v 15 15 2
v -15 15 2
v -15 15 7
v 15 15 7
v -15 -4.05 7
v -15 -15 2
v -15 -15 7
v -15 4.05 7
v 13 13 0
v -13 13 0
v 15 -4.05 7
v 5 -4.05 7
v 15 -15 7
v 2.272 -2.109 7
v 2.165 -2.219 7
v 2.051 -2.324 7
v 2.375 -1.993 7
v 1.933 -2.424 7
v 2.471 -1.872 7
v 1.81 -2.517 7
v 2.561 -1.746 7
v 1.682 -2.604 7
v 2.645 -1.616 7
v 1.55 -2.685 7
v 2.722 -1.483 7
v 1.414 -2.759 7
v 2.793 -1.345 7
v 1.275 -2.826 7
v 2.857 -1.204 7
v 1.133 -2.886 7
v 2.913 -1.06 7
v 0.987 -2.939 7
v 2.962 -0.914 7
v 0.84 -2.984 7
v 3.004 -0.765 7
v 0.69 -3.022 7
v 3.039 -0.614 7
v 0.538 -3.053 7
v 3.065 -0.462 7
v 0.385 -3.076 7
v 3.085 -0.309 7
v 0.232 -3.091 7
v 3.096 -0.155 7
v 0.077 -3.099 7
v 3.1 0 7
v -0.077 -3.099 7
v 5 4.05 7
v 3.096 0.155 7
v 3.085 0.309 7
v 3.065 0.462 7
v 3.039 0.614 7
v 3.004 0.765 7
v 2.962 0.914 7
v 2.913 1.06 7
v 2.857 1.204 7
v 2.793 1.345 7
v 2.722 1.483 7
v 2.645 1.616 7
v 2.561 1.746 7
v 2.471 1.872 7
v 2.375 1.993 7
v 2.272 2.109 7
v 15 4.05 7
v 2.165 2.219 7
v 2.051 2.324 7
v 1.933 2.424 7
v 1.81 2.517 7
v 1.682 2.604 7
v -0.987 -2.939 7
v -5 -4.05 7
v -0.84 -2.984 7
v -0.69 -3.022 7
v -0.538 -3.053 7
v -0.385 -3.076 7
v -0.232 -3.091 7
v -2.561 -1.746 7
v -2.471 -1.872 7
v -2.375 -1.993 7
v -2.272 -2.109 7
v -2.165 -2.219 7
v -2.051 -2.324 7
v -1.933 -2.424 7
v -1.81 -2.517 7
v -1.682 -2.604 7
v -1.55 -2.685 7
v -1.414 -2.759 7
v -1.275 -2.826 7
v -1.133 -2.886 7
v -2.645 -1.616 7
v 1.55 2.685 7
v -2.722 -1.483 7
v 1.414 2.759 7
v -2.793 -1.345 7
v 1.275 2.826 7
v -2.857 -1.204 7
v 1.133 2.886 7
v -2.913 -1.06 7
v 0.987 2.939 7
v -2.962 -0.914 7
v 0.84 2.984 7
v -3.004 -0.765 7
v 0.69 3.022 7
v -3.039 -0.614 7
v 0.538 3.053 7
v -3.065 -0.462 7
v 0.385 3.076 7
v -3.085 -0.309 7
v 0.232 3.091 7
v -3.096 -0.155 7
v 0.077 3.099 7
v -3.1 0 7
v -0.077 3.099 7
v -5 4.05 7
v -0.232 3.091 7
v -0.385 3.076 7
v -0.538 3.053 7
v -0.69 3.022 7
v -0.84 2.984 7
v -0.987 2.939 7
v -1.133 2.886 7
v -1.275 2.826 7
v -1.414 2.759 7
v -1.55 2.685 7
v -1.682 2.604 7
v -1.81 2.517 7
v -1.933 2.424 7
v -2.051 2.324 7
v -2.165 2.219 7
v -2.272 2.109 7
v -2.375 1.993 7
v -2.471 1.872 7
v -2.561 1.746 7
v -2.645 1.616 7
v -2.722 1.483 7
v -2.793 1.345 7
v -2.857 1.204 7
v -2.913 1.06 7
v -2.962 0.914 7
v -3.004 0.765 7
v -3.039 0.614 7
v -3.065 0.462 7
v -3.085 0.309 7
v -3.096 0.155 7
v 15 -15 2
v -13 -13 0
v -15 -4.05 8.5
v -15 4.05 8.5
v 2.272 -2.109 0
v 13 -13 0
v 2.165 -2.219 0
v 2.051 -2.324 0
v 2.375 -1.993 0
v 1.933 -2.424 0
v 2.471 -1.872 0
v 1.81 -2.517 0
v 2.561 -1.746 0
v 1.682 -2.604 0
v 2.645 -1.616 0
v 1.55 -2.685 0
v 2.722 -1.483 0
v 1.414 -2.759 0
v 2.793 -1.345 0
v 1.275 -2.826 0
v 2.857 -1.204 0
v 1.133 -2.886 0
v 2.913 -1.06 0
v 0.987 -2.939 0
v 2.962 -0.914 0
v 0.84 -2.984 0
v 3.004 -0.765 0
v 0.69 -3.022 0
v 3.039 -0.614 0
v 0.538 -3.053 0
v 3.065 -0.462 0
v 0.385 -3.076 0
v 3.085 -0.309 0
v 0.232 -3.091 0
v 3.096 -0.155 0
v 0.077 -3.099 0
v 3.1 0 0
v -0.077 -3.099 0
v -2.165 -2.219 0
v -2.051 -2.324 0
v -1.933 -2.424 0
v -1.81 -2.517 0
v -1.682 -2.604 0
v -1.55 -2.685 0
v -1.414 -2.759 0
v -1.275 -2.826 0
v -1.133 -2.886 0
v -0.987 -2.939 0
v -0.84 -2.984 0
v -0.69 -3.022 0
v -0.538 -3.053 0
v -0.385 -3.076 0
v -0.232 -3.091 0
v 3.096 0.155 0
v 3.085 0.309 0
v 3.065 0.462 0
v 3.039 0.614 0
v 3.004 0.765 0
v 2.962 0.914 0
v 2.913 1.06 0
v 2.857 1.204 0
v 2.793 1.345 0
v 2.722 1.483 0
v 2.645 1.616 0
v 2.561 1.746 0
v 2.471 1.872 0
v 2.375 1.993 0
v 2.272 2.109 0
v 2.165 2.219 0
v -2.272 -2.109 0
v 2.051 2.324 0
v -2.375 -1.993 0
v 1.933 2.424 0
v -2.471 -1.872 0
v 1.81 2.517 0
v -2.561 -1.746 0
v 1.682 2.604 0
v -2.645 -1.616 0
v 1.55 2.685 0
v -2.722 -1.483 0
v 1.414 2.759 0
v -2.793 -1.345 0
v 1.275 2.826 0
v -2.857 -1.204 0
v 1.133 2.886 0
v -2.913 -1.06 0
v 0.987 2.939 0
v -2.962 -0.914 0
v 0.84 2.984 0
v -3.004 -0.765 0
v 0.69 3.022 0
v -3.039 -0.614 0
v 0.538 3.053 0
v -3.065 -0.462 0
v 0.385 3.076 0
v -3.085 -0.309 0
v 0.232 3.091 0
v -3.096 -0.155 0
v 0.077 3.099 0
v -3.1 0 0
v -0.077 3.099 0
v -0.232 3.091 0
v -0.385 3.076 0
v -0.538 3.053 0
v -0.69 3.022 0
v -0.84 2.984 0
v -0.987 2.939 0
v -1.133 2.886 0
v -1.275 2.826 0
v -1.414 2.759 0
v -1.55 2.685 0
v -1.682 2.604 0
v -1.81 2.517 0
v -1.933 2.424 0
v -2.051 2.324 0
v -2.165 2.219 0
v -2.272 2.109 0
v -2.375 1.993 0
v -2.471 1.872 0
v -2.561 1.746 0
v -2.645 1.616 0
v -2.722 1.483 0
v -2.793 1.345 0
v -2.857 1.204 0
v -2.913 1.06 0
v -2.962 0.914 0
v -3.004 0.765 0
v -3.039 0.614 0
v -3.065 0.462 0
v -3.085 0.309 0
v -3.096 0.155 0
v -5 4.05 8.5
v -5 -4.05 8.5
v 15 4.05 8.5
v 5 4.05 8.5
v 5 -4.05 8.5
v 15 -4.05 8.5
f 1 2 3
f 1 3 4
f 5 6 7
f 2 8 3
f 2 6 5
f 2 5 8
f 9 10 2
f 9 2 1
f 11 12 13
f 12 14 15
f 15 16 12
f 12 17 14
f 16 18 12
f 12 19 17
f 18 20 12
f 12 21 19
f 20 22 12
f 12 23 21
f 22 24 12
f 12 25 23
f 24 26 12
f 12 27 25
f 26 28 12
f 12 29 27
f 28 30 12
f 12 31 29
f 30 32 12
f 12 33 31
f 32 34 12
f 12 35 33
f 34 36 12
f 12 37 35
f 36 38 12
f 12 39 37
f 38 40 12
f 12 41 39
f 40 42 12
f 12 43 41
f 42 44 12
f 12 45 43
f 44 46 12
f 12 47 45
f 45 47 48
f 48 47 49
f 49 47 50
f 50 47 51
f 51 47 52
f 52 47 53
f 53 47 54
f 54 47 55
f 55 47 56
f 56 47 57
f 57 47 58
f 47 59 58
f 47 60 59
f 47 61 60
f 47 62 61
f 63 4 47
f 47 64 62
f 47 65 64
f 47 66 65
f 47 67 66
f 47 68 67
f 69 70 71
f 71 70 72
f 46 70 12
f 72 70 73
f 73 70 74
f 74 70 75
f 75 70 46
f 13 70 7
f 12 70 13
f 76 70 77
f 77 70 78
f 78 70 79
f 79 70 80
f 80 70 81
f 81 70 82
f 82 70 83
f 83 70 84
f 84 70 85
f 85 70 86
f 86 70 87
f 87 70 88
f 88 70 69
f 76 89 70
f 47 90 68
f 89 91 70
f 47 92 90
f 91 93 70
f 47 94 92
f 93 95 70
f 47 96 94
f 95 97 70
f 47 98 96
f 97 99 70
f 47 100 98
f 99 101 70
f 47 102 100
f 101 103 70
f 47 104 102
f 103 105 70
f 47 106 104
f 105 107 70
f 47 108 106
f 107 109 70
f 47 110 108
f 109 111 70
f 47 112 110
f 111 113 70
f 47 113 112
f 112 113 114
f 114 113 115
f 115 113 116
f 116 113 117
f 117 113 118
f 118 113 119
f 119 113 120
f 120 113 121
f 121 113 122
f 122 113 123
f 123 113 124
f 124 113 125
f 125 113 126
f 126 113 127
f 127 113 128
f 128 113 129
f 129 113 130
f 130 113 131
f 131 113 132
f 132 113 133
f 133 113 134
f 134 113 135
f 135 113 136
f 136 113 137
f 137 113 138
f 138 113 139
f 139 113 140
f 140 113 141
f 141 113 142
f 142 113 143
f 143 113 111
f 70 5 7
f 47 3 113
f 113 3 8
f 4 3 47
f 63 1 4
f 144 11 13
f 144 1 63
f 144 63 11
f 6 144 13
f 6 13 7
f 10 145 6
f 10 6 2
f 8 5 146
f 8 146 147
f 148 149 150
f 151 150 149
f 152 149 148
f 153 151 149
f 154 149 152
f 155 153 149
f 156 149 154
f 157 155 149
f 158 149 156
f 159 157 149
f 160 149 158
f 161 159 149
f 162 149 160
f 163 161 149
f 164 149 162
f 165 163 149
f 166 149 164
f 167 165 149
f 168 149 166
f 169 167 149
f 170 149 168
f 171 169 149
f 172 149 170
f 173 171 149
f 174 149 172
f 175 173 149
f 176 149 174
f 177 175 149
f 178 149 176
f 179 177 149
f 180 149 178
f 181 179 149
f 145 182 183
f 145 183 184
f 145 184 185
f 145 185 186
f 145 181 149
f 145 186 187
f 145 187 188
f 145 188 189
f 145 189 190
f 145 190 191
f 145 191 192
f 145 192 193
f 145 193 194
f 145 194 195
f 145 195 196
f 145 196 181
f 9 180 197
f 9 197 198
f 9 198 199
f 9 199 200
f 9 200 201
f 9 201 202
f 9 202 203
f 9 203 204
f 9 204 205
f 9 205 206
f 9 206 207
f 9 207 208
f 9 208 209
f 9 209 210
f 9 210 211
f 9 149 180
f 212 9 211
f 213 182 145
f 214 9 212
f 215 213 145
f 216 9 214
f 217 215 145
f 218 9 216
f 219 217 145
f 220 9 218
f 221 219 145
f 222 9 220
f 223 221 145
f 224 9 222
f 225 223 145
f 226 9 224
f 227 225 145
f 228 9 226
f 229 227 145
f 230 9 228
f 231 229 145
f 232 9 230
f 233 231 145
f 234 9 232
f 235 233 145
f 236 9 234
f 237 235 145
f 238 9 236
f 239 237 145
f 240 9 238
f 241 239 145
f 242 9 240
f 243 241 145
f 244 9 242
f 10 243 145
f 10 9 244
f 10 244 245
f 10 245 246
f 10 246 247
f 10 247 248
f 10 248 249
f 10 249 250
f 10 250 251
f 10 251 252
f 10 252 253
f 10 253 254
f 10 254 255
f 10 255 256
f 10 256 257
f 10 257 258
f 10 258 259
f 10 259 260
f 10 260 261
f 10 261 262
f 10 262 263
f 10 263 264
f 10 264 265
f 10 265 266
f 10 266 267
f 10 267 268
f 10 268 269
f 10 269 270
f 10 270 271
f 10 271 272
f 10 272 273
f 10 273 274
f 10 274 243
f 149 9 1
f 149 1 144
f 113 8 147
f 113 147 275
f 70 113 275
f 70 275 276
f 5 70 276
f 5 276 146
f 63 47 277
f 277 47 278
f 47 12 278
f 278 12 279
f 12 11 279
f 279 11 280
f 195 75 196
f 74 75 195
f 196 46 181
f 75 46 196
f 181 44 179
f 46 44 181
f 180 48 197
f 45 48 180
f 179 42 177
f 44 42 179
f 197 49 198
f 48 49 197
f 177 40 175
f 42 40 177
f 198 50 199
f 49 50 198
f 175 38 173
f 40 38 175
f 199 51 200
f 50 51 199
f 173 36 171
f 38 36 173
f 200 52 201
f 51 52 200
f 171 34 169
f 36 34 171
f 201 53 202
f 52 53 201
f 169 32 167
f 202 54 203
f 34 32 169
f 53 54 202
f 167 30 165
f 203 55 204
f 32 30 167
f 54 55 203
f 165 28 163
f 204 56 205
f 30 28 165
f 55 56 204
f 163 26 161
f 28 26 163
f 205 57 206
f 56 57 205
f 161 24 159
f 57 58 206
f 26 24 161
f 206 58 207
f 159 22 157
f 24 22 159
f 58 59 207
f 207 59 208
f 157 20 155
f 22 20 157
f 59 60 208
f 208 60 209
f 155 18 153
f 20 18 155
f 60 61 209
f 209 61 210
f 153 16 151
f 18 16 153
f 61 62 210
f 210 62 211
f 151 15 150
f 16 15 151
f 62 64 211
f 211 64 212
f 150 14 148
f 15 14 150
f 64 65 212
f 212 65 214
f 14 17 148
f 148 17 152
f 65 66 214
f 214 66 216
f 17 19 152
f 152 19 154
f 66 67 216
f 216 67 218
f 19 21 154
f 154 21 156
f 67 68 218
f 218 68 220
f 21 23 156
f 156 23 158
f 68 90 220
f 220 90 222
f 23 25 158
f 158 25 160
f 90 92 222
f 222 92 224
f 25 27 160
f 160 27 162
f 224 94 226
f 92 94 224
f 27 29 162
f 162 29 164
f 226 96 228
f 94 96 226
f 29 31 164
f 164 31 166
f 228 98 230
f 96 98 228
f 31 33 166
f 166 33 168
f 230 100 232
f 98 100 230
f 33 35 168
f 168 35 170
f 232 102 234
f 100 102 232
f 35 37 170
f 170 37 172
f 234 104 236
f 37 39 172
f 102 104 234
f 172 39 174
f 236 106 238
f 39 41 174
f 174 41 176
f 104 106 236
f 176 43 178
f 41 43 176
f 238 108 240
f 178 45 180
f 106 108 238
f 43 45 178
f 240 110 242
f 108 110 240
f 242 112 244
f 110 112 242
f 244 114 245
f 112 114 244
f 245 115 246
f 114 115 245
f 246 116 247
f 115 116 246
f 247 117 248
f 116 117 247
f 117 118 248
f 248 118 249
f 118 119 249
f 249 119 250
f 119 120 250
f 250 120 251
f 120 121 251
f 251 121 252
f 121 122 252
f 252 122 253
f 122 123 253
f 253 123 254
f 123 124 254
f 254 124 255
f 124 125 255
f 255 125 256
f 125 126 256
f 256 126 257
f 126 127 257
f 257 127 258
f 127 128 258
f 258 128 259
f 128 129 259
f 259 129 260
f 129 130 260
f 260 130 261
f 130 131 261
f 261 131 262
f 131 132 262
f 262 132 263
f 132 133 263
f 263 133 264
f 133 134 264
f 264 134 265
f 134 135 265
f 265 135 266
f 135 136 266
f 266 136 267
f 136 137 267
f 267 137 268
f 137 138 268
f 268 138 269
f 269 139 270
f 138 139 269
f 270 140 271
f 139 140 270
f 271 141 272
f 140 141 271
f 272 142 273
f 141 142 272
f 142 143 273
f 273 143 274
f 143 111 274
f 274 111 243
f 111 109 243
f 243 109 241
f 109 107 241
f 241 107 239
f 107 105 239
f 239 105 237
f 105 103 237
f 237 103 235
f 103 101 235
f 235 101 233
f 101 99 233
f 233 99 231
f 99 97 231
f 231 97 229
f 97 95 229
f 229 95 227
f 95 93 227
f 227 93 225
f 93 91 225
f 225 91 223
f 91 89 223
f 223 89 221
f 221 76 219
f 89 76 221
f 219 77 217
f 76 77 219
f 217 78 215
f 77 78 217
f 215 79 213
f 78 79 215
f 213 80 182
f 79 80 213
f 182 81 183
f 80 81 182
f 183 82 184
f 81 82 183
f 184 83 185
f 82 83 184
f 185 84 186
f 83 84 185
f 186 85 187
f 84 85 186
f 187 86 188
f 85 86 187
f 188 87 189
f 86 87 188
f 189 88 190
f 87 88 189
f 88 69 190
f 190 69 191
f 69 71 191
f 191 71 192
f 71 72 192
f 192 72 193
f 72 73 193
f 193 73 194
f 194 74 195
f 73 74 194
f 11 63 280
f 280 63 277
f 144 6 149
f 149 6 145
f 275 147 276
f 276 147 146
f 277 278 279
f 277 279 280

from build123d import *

# Parameters (mm, degrees)
SKETCH_W     = 30
SKETCH_H     = 30
PAD_DEPTH    = 7
SKETCH001_W  = 10
SKETCH001_H  = 8.1
PAD001_DEPTH = 1.5
SKETCH002_R  = 3.1
POCKET_DEPTH = 7.001
CHAMFER_SIZE = 2


with BuildPart() as part:
    # Sketch → Pad (new body)
    with BuildSketch(Plane.XY):
        Rectangle(SKETCH_W, SKETCH_H)
    extrude(amount=PAD_DEPTH)

    # Sketch001 (on Face6 of Pad) → Pad001 (join)
    with BuildSketch(Plane.XY.offset(7)):
        with Locations((-10, 0)):
            Rectangle(SKETCH001_W, SKETCH001_H)
        with Locations((10, 0)):
            Rectangle(SKETCH001_W, SKETCH001_H)
    extrude(amount=PAD001_DEPTH)

    # Sketch002 (on Face5 of Pad001) → Pocket (cut, through all)
    with BuildSketch(Plane.XY.offset(7)):
        Circle(SKETCH002_R)
    extrude(amount=-POCKET_DEPTH, mode=Mode.SUBTRACT)

    # Chamfer
    chamfer_edges = [part.edges().sort_by_distance(p)[0] for p in [
        (15, 0, 0),
        (0, -15, 0),
        (-15, 0, 0),
        (0, 15, 0),
    ]]
    chamfer(chamfer_edges, length=CHAMFER_SIZE)


solid = part.part
